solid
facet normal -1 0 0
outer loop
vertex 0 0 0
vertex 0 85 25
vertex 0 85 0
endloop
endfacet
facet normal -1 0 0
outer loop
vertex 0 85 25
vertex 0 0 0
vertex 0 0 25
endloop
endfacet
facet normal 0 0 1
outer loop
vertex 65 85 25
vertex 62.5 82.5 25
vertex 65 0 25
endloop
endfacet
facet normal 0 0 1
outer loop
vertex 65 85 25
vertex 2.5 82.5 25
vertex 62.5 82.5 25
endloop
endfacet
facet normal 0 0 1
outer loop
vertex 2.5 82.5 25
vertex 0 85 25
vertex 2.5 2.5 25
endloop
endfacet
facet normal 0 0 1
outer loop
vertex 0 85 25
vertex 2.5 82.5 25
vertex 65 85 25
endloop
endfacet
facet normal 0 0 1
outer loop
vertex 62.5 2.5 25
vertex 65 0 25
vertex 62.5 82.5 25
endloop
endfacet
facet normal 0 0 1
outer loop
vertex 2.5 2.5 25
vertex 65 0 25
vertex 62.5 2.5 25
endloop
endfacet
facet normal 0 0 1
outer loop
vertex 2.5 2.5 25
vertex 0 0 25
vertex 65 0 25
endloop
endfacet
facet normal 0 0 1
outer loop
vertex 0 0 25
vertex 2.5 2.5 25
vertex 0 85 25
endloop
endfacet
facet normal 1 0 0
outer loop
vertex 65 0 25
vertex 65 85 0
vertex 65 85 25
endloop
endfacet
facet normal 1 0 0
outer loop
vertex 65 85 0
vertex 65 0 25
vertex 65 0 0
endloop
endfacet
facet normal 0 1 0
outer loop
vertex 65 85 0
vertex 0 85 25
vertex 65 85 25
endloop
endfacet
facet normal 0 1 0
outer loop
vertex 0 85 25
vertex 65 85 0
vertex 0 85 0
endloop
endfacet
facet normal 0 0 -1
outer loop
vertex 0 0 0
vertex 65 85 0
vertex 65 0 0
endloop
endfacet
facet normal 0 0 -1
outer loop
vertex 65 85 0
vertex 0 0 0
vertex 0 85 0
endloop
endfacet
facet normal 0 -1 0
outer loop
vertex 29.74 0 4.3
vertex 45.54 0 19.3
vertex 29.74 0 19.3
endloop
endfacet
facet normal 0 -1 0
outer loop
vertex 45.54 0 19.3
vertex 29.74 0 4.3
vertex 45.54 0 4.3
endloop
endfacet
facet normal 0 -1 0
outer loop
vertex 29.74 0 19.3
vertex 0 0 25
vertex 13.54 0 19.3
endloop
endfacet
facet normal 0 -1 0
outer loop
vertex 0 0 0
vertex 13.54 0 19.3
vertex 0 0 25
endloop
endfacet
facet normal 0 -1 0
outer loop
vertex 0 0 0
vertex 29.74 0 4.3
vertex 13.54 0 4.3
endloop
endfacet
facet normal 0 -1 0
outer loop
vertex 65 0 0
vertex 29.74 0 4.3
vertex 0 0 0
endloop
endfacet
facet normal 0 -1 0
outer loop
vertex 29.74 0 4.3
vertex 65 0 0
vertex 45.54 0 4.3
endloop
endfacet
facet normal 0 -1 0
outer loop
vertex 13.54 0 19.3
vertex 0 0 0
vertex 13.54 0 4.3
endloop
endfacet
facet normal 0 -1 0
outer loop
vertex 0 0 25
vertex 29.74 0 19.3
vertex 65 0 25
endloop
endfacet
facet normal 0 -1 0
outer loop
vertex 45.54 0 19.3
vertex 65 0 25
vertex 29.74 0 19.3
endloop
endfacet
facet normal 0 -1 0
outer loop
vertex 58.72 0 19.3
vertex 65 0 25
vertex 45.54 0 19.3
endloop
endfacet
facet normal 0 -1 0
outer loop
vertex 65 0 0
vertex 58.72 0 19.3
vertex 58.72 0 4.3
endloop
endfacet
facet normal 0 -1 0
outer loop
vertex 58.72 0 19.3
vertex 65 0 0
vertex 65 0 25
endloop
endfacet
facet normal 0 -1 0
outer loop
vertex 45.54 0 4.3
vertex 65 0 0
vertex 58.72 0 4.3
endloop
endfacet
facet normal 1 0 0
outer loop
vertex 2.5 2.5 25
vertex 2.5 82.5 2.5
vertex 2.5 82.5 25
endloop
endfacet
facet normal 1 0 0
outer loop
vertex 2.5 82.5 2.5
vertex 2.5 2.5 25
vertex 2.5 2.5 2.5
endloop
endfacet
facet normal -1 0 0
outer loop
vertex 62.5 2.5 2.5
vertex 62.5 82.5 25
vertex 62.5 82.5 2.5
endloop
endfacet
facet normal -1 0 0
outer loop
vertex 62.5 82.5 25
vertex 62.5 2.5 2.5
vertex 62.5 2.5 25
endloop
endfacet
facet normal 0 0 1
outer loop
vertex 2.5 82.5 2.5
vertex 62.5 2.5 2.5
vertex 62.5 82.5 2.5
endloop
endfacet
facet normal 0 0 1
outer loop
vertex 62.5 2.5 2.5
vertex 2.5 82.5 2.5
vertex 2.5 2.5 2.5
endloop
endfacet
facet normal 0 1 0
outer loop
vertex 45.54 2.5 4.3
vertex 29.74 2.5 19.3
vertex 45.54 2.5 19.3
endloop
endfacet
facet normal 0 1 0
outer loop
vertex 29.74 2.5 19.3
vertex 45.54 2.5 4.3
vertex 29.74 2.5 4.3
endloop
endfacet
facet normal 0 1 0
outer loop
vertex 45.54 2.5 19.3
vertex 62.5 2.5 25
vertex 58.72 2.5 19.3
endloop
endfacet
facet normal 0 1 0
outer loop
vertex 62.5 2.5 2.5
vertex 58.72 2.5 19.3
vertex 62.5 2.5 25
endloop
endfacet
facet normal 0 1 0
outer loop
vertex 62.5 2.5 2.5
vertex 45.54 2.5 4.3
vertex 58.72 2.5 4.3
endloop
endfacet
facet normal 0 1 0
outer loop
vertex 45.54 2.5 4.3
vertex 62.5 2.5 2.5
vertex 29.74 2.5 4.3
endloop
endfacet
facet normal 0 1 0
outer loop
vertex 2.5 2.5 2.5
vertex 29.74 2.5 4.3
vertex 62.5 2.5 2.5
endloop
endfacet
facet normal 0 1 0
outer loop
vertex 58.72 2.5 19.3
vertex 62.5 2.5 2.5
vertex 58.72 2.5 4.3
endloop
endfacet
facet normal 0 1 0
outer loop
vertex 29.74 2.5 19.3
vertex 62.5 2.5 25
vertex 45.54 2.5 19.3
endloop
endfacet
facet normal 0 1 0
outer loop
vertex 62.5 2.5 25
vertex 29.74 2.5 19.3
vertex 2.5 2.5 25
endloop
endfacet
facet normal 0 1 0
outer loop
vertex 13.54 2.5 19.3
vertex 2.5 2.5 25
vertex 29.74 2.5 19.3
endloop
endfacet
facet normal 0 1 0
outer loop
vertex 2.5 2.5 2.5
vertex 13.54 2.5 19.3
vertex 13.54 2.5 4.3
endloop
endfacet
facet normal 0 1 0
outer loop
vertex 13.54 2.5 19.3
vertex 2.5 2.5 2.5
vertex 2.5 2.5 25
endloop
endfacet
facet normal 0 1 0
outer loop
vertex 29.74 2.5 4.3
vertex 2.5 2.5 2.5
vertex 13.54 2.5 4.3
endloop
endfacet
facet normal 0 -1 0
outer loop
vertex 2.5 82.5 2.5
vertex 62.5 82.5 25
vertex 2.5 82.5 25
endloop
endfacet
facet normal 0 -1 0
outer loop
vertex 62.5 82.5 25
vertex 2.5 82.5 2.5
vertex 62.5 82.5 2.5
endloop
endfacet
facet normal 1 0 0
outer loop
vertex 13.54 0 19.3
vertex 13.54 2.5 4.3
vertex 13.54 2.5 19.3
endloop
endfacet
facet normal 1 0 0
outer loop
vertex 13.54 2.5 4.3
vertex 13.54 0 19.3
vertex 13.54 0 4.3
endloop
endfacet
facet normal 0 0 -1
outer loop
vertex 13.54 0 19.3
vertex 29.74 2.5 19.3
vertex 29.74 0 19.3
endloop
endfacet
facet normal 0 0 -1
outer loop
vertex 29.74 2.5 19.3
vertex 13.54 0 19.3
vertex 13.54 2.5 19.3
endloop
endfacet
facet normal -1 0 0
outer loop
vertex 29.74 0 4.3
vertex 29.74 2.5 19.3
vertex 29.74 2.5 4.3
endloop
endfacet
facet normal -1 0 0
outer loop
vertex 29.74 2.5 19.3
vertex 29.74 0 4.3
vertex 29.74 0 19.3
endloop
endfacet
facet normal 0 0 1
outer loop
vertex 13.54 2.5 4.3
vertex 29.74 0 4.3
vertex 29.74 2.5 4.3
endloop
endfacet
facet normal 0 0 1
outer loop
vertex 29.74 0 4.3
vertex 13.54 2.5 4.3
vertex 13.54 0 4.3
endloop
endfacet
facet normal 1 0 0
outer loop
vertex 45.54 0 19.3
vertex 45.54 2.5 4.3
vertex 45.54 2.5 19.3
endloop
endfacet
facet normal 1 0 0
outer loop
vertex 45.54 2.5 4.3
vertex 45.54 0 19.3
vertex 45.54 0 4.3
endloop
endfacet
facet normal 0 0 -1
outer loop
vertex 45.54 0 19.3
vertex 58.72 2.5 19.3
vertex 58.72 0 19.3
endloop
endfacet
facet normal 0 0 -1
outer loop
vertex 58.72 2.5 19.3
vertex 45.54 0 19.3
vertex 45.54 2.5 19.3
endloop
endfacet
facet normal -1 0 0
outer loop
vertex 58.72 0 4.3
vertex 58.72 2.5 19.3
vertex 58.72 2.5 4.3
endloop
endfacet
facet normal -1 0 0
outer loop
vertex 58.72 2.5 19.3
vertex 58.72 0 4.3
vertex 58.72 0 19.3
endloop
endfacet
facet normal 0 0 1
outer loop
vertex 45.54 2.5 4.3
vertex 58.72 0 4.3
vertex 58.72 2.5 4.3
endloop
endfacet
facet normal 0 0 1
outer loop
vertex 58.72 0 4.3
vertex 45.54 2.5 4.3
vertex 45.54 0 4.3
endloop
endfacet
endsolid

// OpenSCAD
//Caixa de Acondicionamento Arduino UNO
difference(){
cube([65,85,25]);
#translate([2.5,2.5,2.5])cube([60,80,22.5]);
#translate([(60-53.36)/2+9.72-2+2.5,0,5.8-2+0.5])cube([16.20,25,15]);
#translate([(60-53.36)/2+9.72-2+2.5+16.20-4+19.80,0,5.8-2+0.5])cube([13.18,25,15]);
}
